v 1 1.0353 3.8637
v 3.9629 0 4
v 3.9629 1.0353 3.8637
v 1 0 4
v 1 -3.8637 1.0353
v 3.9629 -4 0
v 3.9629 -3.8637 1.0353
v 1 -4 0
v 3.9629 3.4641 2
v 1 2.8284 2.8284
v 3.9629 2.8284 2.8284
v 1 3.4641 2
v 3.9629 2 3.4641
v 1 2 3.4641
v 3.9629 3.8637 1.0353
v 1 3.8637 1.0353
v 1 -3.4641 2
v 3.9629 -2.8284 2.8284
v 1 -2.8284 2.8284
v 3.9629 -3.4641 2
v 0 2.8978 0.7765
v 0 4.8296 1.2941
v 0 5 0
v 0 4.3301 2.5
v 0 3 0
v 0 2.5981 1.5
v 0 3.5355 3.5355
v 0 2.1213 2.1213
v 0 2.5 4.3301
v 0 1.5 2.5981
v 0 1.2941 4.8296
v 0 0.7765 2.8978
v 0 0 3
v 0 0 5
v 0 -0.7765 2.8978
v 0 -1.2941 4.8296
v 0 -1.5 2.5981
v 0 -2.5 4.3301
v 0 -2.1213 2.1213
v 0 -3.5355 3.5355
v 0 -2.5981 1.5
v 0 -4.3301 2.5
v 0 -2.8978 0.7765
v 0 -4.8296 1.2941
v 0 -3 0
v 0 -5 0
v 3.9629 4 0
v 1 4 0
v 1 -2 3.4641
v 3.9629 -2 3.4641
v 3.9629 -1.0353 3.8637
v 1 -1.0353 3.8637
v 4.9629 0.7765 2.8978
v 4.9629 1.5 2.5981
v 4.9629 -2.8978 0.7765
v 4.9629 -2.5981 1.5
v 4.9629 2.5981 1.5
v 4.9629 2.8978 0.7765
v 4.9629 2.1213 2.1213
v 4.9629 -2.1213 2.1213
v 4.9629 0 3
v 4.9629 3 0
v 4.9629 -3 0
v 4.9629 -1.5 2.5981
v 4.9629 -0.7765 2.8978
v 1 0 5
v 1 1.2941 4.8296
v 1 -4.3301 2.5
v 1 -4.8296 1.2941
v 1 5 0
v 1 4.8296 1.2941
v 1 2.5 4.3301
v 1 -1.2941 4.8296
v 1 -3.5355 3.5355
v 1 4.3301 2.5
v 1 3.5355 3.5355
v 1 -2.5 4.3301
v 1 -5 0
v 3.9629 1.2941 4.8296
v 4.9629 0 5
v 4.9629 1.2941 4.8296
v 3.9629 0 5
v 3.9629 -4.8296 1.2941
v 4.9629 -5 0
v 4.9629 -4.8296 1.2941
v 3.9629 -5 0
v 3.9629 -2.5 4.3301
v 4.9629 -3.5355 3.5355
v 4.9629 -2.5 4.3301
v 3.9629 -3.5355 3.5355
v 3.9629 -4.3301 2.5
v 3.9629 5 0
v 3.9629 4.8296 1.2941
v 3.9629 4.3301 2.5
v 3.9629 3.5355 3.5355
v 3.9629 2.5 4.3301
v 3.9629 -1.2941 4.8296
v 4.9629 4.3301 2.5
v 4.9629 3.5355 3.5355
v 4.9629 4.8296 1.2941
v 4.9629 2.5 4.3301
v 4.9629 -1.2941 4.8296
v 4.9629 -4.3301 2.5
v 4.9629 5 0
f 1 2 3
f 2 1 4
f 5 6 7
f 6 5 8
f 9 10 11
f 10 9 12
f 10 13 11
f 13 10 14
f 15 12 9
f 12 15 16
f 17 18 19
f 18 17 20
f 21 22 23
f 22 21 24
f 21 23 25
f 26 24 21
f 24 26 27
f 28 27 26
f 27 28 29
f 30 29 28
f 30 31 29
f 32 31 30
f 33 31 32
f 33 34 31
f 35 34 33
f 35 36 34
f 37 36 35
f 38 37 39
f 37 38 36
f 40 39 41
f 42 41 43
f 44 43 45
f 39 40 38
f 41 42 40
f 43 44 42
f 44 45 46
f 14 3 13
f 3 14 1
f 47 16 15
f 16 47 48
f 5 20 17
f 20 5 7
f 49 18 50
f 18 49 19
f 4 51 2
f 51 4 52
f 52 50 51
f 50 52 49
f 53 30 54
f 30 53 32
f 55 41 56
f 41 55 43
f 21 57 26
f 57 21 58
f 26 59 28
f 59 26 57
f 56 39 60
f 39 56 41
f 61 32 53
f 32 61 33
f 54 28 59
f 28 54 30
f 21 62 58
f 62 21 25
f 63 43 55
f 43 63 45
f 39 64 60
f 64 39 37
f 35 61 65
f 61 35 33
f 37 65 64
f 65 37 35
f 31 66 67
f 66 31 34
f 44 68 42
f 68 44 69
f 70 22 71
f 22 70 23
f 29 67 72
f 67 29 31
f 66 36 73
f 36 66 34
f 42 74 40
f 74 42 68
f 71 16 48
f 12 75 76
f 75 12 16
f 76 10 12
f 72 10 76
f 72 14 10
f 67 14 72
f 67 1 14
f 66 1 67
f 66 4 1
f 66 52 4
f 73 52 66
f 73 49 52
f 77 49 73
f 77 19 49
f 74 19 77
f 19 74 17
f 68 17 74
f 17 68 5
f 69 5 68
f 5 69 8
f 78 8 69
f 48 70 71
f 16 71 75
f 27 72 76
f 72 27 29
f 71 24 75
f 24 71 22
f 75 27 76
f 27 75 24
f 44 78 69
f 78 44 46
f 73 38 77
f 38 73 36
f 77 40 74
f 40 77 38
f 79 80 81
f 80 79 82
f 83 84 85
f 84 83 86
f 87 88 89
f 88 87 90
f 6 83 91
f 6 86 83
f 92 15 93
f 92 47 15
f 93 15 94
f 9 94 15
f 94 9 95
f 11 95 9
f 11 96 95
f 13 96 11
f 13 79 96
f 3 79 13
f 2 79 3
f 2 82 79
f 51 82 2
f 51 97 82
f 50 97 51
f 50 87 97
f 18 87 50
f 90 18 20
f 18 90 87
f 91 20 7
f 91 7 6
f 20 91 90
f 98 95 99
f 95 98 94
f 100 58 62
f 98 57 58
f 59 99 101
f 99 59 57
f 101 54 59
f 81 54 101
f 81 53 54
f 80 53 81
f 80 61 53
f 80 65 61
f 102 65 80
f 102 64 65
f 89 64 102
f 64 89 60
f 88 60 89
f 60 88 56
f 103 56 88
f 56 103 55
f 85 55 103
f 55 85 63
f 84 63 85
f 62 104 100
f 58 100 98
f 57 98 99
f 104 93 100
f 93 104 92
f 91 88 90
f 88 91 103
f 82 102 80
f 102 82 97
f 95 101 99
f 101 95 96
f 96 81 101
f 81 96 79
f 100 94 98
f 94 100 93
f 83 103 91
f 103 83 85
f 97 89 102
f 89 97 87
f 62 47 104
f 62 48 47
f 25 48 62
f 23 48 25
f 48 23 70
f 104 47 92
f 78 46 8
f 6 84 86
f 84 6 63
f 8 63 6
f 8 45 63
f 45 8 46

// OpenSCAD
// file: ../build_environments.scad
// build_environments.scad: modules to build level sections
//

module pool(diameter=10.0, wall_height=2.0, step_width=3.0, connections=[])
{
    difference() {
        union() {
        difference() {
            cylinder(h=0.5,r1=diameter+step_width,r2=diameter+step_width,$fn=48);
            translate([0,0,-0.1])
                cylinder(h=0.7,r1=diameter,r2=diameter,$fn=48);
        }
        difference() {
            cylinder(h=wall_height,r1=diameter+step_width+1.0,r2=diameter+step_width+1.0,$fn=48);
            translate([0,0,-0.1])
                cylinder(h=wall_height+0.2,r1=diameter+step_width,r2=diameter+step_width,$fn=48);
        }
        }
    
        for (c = connections)
        {
            rotate([0,90,0]) {
                angle = atan2(c[1],c[0]);
                rotate([-angle,0,0]) {
                    cylinder(h=diameter+5.0,r1=c[2],r2=c[2],$fn=48);
                }
            }
        }
    }
}

module straight(length=10.0, width=2.0, dy1=0.0, dy2=0.0, dz=0.0)
{
    dims = [0, 0, 0, 0, 0, (dz/length)];
    matrix = [
        [ 1, dims[0], dims[1], 0 ],
        [ dims[2], 1, dims[4], 0 ],
        [ dims[5], dims[3], 1, 0 ],
        [ 0, 0, 0, 1 ]
    ];
    multmatrix(matrix)
    difference() {
        translate([dy1,0,0])
        union() {
            rotate([0,90,0]) {
                difference() {
                    cylinder(h=(length-dy1-dy2),r1=width+1.0,r2=width+1.0,$fn=24);
                    translate([0,0,-0.1])
                        cylinder(h=(length-dy1-dy2+0.2),r1=width,r2=width,$fn=24);
                }
                difference() {
                    cylinder(h=1.0,r1=width+2.0,r2=width+2.0,$fn=24);
                    translate([0,0,-0.1])
                        cylinder(h=1.2,r1=width,r2=width,$fn=24);
                }
                translate([0,0,(length-dy1-dy2)-1.0]) {
                    difference() {
                        cylinder(h=1.0,r1=width+2.0,r2=width+2.0,$fn=24);
                        translate([0,0,-0.1])
                            cylinder(h=1.2,r1=width,r2=width,$fn=24);
                    }
                }
            }
        }
        translate([0,0,-(2*width+4.0)/2])
            cube([3*length,3*length,2*width+4.0],center=true);
    }
}

module curve(p0=[0,0], center=[0,0], dir=1, angle=0.0, width=2.0)
{
    radius = sqrt((p0[0]-center[0])*(p0[0]-center[0]) + (p0[1]-center[1])*(p0[1]-center[1]));
    if (dir == 0) {
        difference() {
            rotate([0,0,-90])
            difference() {
                rotate_extrude(angle = angle, convexity = 10, $fn=32)
                    translate([radius, 0, 0])
                        circle(r = width+1.0,$fn=24);
                rotate([0,0,-1.0])
                    rotate_extrude(angle = angle+2.0, convexity = 10, $fn=32)
                        translate([radius, 0, 0])
                            circle(r = width,$fn=24);
            }
            translate([0,0,-(2*width+4.0)/2])
                cube([5*radius,5*radius,2*width+4.0],center=true);
        }
    }
    else {
        difference() {
            rotate([0,0,90])
            difference() {
                rotate_extrude(angle = -angle, convexity = 10, $fn=32)
                    translate([radius, 0, 0])
                        circle(r = width+1.0,$fn=24);
                rotate([0,0,1.0])
                    rotate_extrude(angle = -angle-2.0, convexity = 10, $fn=32)
                        translate([radius, 0, 0])
                            circle(r = width,$fn=24);
            }
            translate([0,0,-(2*width+4.0)/2])
                cube([5*radius,5*radius,2*width+4.0],center=true);
        }
    }

}

// test pool
//pool(diameter=12.0000, wall_height=3.0000, step_width=3.0000, connections=[[0.0000,-26.0000,2.0000], [23.6074,0.0000,2.0000]]);

// test straight, slope
//straight(length=26.0000, width=2.0000, dy1=11.8322, dy2=6.7082, dz=0.0000);
//straight(length=29.1549, width=12.0000, dy1=0.0000, dy2=0.0000, dz=-15.0000);

// test curve
//curve(p0=[23.6074, 0.0000], center=[23.6074, 5.0000], dir=0, angle=60.1011, width=2.0000);
//curve(p0=[33.6426, 12.4219], center=[37.9771, 9.9295], dir=1, angle=120.4627, width=2.0000);
// main file
use <../build_environments.scad>;
straight(length=4.9629, width=3.0000, dy1=0.0000, dy2=0.0000, dz=0.0000);
